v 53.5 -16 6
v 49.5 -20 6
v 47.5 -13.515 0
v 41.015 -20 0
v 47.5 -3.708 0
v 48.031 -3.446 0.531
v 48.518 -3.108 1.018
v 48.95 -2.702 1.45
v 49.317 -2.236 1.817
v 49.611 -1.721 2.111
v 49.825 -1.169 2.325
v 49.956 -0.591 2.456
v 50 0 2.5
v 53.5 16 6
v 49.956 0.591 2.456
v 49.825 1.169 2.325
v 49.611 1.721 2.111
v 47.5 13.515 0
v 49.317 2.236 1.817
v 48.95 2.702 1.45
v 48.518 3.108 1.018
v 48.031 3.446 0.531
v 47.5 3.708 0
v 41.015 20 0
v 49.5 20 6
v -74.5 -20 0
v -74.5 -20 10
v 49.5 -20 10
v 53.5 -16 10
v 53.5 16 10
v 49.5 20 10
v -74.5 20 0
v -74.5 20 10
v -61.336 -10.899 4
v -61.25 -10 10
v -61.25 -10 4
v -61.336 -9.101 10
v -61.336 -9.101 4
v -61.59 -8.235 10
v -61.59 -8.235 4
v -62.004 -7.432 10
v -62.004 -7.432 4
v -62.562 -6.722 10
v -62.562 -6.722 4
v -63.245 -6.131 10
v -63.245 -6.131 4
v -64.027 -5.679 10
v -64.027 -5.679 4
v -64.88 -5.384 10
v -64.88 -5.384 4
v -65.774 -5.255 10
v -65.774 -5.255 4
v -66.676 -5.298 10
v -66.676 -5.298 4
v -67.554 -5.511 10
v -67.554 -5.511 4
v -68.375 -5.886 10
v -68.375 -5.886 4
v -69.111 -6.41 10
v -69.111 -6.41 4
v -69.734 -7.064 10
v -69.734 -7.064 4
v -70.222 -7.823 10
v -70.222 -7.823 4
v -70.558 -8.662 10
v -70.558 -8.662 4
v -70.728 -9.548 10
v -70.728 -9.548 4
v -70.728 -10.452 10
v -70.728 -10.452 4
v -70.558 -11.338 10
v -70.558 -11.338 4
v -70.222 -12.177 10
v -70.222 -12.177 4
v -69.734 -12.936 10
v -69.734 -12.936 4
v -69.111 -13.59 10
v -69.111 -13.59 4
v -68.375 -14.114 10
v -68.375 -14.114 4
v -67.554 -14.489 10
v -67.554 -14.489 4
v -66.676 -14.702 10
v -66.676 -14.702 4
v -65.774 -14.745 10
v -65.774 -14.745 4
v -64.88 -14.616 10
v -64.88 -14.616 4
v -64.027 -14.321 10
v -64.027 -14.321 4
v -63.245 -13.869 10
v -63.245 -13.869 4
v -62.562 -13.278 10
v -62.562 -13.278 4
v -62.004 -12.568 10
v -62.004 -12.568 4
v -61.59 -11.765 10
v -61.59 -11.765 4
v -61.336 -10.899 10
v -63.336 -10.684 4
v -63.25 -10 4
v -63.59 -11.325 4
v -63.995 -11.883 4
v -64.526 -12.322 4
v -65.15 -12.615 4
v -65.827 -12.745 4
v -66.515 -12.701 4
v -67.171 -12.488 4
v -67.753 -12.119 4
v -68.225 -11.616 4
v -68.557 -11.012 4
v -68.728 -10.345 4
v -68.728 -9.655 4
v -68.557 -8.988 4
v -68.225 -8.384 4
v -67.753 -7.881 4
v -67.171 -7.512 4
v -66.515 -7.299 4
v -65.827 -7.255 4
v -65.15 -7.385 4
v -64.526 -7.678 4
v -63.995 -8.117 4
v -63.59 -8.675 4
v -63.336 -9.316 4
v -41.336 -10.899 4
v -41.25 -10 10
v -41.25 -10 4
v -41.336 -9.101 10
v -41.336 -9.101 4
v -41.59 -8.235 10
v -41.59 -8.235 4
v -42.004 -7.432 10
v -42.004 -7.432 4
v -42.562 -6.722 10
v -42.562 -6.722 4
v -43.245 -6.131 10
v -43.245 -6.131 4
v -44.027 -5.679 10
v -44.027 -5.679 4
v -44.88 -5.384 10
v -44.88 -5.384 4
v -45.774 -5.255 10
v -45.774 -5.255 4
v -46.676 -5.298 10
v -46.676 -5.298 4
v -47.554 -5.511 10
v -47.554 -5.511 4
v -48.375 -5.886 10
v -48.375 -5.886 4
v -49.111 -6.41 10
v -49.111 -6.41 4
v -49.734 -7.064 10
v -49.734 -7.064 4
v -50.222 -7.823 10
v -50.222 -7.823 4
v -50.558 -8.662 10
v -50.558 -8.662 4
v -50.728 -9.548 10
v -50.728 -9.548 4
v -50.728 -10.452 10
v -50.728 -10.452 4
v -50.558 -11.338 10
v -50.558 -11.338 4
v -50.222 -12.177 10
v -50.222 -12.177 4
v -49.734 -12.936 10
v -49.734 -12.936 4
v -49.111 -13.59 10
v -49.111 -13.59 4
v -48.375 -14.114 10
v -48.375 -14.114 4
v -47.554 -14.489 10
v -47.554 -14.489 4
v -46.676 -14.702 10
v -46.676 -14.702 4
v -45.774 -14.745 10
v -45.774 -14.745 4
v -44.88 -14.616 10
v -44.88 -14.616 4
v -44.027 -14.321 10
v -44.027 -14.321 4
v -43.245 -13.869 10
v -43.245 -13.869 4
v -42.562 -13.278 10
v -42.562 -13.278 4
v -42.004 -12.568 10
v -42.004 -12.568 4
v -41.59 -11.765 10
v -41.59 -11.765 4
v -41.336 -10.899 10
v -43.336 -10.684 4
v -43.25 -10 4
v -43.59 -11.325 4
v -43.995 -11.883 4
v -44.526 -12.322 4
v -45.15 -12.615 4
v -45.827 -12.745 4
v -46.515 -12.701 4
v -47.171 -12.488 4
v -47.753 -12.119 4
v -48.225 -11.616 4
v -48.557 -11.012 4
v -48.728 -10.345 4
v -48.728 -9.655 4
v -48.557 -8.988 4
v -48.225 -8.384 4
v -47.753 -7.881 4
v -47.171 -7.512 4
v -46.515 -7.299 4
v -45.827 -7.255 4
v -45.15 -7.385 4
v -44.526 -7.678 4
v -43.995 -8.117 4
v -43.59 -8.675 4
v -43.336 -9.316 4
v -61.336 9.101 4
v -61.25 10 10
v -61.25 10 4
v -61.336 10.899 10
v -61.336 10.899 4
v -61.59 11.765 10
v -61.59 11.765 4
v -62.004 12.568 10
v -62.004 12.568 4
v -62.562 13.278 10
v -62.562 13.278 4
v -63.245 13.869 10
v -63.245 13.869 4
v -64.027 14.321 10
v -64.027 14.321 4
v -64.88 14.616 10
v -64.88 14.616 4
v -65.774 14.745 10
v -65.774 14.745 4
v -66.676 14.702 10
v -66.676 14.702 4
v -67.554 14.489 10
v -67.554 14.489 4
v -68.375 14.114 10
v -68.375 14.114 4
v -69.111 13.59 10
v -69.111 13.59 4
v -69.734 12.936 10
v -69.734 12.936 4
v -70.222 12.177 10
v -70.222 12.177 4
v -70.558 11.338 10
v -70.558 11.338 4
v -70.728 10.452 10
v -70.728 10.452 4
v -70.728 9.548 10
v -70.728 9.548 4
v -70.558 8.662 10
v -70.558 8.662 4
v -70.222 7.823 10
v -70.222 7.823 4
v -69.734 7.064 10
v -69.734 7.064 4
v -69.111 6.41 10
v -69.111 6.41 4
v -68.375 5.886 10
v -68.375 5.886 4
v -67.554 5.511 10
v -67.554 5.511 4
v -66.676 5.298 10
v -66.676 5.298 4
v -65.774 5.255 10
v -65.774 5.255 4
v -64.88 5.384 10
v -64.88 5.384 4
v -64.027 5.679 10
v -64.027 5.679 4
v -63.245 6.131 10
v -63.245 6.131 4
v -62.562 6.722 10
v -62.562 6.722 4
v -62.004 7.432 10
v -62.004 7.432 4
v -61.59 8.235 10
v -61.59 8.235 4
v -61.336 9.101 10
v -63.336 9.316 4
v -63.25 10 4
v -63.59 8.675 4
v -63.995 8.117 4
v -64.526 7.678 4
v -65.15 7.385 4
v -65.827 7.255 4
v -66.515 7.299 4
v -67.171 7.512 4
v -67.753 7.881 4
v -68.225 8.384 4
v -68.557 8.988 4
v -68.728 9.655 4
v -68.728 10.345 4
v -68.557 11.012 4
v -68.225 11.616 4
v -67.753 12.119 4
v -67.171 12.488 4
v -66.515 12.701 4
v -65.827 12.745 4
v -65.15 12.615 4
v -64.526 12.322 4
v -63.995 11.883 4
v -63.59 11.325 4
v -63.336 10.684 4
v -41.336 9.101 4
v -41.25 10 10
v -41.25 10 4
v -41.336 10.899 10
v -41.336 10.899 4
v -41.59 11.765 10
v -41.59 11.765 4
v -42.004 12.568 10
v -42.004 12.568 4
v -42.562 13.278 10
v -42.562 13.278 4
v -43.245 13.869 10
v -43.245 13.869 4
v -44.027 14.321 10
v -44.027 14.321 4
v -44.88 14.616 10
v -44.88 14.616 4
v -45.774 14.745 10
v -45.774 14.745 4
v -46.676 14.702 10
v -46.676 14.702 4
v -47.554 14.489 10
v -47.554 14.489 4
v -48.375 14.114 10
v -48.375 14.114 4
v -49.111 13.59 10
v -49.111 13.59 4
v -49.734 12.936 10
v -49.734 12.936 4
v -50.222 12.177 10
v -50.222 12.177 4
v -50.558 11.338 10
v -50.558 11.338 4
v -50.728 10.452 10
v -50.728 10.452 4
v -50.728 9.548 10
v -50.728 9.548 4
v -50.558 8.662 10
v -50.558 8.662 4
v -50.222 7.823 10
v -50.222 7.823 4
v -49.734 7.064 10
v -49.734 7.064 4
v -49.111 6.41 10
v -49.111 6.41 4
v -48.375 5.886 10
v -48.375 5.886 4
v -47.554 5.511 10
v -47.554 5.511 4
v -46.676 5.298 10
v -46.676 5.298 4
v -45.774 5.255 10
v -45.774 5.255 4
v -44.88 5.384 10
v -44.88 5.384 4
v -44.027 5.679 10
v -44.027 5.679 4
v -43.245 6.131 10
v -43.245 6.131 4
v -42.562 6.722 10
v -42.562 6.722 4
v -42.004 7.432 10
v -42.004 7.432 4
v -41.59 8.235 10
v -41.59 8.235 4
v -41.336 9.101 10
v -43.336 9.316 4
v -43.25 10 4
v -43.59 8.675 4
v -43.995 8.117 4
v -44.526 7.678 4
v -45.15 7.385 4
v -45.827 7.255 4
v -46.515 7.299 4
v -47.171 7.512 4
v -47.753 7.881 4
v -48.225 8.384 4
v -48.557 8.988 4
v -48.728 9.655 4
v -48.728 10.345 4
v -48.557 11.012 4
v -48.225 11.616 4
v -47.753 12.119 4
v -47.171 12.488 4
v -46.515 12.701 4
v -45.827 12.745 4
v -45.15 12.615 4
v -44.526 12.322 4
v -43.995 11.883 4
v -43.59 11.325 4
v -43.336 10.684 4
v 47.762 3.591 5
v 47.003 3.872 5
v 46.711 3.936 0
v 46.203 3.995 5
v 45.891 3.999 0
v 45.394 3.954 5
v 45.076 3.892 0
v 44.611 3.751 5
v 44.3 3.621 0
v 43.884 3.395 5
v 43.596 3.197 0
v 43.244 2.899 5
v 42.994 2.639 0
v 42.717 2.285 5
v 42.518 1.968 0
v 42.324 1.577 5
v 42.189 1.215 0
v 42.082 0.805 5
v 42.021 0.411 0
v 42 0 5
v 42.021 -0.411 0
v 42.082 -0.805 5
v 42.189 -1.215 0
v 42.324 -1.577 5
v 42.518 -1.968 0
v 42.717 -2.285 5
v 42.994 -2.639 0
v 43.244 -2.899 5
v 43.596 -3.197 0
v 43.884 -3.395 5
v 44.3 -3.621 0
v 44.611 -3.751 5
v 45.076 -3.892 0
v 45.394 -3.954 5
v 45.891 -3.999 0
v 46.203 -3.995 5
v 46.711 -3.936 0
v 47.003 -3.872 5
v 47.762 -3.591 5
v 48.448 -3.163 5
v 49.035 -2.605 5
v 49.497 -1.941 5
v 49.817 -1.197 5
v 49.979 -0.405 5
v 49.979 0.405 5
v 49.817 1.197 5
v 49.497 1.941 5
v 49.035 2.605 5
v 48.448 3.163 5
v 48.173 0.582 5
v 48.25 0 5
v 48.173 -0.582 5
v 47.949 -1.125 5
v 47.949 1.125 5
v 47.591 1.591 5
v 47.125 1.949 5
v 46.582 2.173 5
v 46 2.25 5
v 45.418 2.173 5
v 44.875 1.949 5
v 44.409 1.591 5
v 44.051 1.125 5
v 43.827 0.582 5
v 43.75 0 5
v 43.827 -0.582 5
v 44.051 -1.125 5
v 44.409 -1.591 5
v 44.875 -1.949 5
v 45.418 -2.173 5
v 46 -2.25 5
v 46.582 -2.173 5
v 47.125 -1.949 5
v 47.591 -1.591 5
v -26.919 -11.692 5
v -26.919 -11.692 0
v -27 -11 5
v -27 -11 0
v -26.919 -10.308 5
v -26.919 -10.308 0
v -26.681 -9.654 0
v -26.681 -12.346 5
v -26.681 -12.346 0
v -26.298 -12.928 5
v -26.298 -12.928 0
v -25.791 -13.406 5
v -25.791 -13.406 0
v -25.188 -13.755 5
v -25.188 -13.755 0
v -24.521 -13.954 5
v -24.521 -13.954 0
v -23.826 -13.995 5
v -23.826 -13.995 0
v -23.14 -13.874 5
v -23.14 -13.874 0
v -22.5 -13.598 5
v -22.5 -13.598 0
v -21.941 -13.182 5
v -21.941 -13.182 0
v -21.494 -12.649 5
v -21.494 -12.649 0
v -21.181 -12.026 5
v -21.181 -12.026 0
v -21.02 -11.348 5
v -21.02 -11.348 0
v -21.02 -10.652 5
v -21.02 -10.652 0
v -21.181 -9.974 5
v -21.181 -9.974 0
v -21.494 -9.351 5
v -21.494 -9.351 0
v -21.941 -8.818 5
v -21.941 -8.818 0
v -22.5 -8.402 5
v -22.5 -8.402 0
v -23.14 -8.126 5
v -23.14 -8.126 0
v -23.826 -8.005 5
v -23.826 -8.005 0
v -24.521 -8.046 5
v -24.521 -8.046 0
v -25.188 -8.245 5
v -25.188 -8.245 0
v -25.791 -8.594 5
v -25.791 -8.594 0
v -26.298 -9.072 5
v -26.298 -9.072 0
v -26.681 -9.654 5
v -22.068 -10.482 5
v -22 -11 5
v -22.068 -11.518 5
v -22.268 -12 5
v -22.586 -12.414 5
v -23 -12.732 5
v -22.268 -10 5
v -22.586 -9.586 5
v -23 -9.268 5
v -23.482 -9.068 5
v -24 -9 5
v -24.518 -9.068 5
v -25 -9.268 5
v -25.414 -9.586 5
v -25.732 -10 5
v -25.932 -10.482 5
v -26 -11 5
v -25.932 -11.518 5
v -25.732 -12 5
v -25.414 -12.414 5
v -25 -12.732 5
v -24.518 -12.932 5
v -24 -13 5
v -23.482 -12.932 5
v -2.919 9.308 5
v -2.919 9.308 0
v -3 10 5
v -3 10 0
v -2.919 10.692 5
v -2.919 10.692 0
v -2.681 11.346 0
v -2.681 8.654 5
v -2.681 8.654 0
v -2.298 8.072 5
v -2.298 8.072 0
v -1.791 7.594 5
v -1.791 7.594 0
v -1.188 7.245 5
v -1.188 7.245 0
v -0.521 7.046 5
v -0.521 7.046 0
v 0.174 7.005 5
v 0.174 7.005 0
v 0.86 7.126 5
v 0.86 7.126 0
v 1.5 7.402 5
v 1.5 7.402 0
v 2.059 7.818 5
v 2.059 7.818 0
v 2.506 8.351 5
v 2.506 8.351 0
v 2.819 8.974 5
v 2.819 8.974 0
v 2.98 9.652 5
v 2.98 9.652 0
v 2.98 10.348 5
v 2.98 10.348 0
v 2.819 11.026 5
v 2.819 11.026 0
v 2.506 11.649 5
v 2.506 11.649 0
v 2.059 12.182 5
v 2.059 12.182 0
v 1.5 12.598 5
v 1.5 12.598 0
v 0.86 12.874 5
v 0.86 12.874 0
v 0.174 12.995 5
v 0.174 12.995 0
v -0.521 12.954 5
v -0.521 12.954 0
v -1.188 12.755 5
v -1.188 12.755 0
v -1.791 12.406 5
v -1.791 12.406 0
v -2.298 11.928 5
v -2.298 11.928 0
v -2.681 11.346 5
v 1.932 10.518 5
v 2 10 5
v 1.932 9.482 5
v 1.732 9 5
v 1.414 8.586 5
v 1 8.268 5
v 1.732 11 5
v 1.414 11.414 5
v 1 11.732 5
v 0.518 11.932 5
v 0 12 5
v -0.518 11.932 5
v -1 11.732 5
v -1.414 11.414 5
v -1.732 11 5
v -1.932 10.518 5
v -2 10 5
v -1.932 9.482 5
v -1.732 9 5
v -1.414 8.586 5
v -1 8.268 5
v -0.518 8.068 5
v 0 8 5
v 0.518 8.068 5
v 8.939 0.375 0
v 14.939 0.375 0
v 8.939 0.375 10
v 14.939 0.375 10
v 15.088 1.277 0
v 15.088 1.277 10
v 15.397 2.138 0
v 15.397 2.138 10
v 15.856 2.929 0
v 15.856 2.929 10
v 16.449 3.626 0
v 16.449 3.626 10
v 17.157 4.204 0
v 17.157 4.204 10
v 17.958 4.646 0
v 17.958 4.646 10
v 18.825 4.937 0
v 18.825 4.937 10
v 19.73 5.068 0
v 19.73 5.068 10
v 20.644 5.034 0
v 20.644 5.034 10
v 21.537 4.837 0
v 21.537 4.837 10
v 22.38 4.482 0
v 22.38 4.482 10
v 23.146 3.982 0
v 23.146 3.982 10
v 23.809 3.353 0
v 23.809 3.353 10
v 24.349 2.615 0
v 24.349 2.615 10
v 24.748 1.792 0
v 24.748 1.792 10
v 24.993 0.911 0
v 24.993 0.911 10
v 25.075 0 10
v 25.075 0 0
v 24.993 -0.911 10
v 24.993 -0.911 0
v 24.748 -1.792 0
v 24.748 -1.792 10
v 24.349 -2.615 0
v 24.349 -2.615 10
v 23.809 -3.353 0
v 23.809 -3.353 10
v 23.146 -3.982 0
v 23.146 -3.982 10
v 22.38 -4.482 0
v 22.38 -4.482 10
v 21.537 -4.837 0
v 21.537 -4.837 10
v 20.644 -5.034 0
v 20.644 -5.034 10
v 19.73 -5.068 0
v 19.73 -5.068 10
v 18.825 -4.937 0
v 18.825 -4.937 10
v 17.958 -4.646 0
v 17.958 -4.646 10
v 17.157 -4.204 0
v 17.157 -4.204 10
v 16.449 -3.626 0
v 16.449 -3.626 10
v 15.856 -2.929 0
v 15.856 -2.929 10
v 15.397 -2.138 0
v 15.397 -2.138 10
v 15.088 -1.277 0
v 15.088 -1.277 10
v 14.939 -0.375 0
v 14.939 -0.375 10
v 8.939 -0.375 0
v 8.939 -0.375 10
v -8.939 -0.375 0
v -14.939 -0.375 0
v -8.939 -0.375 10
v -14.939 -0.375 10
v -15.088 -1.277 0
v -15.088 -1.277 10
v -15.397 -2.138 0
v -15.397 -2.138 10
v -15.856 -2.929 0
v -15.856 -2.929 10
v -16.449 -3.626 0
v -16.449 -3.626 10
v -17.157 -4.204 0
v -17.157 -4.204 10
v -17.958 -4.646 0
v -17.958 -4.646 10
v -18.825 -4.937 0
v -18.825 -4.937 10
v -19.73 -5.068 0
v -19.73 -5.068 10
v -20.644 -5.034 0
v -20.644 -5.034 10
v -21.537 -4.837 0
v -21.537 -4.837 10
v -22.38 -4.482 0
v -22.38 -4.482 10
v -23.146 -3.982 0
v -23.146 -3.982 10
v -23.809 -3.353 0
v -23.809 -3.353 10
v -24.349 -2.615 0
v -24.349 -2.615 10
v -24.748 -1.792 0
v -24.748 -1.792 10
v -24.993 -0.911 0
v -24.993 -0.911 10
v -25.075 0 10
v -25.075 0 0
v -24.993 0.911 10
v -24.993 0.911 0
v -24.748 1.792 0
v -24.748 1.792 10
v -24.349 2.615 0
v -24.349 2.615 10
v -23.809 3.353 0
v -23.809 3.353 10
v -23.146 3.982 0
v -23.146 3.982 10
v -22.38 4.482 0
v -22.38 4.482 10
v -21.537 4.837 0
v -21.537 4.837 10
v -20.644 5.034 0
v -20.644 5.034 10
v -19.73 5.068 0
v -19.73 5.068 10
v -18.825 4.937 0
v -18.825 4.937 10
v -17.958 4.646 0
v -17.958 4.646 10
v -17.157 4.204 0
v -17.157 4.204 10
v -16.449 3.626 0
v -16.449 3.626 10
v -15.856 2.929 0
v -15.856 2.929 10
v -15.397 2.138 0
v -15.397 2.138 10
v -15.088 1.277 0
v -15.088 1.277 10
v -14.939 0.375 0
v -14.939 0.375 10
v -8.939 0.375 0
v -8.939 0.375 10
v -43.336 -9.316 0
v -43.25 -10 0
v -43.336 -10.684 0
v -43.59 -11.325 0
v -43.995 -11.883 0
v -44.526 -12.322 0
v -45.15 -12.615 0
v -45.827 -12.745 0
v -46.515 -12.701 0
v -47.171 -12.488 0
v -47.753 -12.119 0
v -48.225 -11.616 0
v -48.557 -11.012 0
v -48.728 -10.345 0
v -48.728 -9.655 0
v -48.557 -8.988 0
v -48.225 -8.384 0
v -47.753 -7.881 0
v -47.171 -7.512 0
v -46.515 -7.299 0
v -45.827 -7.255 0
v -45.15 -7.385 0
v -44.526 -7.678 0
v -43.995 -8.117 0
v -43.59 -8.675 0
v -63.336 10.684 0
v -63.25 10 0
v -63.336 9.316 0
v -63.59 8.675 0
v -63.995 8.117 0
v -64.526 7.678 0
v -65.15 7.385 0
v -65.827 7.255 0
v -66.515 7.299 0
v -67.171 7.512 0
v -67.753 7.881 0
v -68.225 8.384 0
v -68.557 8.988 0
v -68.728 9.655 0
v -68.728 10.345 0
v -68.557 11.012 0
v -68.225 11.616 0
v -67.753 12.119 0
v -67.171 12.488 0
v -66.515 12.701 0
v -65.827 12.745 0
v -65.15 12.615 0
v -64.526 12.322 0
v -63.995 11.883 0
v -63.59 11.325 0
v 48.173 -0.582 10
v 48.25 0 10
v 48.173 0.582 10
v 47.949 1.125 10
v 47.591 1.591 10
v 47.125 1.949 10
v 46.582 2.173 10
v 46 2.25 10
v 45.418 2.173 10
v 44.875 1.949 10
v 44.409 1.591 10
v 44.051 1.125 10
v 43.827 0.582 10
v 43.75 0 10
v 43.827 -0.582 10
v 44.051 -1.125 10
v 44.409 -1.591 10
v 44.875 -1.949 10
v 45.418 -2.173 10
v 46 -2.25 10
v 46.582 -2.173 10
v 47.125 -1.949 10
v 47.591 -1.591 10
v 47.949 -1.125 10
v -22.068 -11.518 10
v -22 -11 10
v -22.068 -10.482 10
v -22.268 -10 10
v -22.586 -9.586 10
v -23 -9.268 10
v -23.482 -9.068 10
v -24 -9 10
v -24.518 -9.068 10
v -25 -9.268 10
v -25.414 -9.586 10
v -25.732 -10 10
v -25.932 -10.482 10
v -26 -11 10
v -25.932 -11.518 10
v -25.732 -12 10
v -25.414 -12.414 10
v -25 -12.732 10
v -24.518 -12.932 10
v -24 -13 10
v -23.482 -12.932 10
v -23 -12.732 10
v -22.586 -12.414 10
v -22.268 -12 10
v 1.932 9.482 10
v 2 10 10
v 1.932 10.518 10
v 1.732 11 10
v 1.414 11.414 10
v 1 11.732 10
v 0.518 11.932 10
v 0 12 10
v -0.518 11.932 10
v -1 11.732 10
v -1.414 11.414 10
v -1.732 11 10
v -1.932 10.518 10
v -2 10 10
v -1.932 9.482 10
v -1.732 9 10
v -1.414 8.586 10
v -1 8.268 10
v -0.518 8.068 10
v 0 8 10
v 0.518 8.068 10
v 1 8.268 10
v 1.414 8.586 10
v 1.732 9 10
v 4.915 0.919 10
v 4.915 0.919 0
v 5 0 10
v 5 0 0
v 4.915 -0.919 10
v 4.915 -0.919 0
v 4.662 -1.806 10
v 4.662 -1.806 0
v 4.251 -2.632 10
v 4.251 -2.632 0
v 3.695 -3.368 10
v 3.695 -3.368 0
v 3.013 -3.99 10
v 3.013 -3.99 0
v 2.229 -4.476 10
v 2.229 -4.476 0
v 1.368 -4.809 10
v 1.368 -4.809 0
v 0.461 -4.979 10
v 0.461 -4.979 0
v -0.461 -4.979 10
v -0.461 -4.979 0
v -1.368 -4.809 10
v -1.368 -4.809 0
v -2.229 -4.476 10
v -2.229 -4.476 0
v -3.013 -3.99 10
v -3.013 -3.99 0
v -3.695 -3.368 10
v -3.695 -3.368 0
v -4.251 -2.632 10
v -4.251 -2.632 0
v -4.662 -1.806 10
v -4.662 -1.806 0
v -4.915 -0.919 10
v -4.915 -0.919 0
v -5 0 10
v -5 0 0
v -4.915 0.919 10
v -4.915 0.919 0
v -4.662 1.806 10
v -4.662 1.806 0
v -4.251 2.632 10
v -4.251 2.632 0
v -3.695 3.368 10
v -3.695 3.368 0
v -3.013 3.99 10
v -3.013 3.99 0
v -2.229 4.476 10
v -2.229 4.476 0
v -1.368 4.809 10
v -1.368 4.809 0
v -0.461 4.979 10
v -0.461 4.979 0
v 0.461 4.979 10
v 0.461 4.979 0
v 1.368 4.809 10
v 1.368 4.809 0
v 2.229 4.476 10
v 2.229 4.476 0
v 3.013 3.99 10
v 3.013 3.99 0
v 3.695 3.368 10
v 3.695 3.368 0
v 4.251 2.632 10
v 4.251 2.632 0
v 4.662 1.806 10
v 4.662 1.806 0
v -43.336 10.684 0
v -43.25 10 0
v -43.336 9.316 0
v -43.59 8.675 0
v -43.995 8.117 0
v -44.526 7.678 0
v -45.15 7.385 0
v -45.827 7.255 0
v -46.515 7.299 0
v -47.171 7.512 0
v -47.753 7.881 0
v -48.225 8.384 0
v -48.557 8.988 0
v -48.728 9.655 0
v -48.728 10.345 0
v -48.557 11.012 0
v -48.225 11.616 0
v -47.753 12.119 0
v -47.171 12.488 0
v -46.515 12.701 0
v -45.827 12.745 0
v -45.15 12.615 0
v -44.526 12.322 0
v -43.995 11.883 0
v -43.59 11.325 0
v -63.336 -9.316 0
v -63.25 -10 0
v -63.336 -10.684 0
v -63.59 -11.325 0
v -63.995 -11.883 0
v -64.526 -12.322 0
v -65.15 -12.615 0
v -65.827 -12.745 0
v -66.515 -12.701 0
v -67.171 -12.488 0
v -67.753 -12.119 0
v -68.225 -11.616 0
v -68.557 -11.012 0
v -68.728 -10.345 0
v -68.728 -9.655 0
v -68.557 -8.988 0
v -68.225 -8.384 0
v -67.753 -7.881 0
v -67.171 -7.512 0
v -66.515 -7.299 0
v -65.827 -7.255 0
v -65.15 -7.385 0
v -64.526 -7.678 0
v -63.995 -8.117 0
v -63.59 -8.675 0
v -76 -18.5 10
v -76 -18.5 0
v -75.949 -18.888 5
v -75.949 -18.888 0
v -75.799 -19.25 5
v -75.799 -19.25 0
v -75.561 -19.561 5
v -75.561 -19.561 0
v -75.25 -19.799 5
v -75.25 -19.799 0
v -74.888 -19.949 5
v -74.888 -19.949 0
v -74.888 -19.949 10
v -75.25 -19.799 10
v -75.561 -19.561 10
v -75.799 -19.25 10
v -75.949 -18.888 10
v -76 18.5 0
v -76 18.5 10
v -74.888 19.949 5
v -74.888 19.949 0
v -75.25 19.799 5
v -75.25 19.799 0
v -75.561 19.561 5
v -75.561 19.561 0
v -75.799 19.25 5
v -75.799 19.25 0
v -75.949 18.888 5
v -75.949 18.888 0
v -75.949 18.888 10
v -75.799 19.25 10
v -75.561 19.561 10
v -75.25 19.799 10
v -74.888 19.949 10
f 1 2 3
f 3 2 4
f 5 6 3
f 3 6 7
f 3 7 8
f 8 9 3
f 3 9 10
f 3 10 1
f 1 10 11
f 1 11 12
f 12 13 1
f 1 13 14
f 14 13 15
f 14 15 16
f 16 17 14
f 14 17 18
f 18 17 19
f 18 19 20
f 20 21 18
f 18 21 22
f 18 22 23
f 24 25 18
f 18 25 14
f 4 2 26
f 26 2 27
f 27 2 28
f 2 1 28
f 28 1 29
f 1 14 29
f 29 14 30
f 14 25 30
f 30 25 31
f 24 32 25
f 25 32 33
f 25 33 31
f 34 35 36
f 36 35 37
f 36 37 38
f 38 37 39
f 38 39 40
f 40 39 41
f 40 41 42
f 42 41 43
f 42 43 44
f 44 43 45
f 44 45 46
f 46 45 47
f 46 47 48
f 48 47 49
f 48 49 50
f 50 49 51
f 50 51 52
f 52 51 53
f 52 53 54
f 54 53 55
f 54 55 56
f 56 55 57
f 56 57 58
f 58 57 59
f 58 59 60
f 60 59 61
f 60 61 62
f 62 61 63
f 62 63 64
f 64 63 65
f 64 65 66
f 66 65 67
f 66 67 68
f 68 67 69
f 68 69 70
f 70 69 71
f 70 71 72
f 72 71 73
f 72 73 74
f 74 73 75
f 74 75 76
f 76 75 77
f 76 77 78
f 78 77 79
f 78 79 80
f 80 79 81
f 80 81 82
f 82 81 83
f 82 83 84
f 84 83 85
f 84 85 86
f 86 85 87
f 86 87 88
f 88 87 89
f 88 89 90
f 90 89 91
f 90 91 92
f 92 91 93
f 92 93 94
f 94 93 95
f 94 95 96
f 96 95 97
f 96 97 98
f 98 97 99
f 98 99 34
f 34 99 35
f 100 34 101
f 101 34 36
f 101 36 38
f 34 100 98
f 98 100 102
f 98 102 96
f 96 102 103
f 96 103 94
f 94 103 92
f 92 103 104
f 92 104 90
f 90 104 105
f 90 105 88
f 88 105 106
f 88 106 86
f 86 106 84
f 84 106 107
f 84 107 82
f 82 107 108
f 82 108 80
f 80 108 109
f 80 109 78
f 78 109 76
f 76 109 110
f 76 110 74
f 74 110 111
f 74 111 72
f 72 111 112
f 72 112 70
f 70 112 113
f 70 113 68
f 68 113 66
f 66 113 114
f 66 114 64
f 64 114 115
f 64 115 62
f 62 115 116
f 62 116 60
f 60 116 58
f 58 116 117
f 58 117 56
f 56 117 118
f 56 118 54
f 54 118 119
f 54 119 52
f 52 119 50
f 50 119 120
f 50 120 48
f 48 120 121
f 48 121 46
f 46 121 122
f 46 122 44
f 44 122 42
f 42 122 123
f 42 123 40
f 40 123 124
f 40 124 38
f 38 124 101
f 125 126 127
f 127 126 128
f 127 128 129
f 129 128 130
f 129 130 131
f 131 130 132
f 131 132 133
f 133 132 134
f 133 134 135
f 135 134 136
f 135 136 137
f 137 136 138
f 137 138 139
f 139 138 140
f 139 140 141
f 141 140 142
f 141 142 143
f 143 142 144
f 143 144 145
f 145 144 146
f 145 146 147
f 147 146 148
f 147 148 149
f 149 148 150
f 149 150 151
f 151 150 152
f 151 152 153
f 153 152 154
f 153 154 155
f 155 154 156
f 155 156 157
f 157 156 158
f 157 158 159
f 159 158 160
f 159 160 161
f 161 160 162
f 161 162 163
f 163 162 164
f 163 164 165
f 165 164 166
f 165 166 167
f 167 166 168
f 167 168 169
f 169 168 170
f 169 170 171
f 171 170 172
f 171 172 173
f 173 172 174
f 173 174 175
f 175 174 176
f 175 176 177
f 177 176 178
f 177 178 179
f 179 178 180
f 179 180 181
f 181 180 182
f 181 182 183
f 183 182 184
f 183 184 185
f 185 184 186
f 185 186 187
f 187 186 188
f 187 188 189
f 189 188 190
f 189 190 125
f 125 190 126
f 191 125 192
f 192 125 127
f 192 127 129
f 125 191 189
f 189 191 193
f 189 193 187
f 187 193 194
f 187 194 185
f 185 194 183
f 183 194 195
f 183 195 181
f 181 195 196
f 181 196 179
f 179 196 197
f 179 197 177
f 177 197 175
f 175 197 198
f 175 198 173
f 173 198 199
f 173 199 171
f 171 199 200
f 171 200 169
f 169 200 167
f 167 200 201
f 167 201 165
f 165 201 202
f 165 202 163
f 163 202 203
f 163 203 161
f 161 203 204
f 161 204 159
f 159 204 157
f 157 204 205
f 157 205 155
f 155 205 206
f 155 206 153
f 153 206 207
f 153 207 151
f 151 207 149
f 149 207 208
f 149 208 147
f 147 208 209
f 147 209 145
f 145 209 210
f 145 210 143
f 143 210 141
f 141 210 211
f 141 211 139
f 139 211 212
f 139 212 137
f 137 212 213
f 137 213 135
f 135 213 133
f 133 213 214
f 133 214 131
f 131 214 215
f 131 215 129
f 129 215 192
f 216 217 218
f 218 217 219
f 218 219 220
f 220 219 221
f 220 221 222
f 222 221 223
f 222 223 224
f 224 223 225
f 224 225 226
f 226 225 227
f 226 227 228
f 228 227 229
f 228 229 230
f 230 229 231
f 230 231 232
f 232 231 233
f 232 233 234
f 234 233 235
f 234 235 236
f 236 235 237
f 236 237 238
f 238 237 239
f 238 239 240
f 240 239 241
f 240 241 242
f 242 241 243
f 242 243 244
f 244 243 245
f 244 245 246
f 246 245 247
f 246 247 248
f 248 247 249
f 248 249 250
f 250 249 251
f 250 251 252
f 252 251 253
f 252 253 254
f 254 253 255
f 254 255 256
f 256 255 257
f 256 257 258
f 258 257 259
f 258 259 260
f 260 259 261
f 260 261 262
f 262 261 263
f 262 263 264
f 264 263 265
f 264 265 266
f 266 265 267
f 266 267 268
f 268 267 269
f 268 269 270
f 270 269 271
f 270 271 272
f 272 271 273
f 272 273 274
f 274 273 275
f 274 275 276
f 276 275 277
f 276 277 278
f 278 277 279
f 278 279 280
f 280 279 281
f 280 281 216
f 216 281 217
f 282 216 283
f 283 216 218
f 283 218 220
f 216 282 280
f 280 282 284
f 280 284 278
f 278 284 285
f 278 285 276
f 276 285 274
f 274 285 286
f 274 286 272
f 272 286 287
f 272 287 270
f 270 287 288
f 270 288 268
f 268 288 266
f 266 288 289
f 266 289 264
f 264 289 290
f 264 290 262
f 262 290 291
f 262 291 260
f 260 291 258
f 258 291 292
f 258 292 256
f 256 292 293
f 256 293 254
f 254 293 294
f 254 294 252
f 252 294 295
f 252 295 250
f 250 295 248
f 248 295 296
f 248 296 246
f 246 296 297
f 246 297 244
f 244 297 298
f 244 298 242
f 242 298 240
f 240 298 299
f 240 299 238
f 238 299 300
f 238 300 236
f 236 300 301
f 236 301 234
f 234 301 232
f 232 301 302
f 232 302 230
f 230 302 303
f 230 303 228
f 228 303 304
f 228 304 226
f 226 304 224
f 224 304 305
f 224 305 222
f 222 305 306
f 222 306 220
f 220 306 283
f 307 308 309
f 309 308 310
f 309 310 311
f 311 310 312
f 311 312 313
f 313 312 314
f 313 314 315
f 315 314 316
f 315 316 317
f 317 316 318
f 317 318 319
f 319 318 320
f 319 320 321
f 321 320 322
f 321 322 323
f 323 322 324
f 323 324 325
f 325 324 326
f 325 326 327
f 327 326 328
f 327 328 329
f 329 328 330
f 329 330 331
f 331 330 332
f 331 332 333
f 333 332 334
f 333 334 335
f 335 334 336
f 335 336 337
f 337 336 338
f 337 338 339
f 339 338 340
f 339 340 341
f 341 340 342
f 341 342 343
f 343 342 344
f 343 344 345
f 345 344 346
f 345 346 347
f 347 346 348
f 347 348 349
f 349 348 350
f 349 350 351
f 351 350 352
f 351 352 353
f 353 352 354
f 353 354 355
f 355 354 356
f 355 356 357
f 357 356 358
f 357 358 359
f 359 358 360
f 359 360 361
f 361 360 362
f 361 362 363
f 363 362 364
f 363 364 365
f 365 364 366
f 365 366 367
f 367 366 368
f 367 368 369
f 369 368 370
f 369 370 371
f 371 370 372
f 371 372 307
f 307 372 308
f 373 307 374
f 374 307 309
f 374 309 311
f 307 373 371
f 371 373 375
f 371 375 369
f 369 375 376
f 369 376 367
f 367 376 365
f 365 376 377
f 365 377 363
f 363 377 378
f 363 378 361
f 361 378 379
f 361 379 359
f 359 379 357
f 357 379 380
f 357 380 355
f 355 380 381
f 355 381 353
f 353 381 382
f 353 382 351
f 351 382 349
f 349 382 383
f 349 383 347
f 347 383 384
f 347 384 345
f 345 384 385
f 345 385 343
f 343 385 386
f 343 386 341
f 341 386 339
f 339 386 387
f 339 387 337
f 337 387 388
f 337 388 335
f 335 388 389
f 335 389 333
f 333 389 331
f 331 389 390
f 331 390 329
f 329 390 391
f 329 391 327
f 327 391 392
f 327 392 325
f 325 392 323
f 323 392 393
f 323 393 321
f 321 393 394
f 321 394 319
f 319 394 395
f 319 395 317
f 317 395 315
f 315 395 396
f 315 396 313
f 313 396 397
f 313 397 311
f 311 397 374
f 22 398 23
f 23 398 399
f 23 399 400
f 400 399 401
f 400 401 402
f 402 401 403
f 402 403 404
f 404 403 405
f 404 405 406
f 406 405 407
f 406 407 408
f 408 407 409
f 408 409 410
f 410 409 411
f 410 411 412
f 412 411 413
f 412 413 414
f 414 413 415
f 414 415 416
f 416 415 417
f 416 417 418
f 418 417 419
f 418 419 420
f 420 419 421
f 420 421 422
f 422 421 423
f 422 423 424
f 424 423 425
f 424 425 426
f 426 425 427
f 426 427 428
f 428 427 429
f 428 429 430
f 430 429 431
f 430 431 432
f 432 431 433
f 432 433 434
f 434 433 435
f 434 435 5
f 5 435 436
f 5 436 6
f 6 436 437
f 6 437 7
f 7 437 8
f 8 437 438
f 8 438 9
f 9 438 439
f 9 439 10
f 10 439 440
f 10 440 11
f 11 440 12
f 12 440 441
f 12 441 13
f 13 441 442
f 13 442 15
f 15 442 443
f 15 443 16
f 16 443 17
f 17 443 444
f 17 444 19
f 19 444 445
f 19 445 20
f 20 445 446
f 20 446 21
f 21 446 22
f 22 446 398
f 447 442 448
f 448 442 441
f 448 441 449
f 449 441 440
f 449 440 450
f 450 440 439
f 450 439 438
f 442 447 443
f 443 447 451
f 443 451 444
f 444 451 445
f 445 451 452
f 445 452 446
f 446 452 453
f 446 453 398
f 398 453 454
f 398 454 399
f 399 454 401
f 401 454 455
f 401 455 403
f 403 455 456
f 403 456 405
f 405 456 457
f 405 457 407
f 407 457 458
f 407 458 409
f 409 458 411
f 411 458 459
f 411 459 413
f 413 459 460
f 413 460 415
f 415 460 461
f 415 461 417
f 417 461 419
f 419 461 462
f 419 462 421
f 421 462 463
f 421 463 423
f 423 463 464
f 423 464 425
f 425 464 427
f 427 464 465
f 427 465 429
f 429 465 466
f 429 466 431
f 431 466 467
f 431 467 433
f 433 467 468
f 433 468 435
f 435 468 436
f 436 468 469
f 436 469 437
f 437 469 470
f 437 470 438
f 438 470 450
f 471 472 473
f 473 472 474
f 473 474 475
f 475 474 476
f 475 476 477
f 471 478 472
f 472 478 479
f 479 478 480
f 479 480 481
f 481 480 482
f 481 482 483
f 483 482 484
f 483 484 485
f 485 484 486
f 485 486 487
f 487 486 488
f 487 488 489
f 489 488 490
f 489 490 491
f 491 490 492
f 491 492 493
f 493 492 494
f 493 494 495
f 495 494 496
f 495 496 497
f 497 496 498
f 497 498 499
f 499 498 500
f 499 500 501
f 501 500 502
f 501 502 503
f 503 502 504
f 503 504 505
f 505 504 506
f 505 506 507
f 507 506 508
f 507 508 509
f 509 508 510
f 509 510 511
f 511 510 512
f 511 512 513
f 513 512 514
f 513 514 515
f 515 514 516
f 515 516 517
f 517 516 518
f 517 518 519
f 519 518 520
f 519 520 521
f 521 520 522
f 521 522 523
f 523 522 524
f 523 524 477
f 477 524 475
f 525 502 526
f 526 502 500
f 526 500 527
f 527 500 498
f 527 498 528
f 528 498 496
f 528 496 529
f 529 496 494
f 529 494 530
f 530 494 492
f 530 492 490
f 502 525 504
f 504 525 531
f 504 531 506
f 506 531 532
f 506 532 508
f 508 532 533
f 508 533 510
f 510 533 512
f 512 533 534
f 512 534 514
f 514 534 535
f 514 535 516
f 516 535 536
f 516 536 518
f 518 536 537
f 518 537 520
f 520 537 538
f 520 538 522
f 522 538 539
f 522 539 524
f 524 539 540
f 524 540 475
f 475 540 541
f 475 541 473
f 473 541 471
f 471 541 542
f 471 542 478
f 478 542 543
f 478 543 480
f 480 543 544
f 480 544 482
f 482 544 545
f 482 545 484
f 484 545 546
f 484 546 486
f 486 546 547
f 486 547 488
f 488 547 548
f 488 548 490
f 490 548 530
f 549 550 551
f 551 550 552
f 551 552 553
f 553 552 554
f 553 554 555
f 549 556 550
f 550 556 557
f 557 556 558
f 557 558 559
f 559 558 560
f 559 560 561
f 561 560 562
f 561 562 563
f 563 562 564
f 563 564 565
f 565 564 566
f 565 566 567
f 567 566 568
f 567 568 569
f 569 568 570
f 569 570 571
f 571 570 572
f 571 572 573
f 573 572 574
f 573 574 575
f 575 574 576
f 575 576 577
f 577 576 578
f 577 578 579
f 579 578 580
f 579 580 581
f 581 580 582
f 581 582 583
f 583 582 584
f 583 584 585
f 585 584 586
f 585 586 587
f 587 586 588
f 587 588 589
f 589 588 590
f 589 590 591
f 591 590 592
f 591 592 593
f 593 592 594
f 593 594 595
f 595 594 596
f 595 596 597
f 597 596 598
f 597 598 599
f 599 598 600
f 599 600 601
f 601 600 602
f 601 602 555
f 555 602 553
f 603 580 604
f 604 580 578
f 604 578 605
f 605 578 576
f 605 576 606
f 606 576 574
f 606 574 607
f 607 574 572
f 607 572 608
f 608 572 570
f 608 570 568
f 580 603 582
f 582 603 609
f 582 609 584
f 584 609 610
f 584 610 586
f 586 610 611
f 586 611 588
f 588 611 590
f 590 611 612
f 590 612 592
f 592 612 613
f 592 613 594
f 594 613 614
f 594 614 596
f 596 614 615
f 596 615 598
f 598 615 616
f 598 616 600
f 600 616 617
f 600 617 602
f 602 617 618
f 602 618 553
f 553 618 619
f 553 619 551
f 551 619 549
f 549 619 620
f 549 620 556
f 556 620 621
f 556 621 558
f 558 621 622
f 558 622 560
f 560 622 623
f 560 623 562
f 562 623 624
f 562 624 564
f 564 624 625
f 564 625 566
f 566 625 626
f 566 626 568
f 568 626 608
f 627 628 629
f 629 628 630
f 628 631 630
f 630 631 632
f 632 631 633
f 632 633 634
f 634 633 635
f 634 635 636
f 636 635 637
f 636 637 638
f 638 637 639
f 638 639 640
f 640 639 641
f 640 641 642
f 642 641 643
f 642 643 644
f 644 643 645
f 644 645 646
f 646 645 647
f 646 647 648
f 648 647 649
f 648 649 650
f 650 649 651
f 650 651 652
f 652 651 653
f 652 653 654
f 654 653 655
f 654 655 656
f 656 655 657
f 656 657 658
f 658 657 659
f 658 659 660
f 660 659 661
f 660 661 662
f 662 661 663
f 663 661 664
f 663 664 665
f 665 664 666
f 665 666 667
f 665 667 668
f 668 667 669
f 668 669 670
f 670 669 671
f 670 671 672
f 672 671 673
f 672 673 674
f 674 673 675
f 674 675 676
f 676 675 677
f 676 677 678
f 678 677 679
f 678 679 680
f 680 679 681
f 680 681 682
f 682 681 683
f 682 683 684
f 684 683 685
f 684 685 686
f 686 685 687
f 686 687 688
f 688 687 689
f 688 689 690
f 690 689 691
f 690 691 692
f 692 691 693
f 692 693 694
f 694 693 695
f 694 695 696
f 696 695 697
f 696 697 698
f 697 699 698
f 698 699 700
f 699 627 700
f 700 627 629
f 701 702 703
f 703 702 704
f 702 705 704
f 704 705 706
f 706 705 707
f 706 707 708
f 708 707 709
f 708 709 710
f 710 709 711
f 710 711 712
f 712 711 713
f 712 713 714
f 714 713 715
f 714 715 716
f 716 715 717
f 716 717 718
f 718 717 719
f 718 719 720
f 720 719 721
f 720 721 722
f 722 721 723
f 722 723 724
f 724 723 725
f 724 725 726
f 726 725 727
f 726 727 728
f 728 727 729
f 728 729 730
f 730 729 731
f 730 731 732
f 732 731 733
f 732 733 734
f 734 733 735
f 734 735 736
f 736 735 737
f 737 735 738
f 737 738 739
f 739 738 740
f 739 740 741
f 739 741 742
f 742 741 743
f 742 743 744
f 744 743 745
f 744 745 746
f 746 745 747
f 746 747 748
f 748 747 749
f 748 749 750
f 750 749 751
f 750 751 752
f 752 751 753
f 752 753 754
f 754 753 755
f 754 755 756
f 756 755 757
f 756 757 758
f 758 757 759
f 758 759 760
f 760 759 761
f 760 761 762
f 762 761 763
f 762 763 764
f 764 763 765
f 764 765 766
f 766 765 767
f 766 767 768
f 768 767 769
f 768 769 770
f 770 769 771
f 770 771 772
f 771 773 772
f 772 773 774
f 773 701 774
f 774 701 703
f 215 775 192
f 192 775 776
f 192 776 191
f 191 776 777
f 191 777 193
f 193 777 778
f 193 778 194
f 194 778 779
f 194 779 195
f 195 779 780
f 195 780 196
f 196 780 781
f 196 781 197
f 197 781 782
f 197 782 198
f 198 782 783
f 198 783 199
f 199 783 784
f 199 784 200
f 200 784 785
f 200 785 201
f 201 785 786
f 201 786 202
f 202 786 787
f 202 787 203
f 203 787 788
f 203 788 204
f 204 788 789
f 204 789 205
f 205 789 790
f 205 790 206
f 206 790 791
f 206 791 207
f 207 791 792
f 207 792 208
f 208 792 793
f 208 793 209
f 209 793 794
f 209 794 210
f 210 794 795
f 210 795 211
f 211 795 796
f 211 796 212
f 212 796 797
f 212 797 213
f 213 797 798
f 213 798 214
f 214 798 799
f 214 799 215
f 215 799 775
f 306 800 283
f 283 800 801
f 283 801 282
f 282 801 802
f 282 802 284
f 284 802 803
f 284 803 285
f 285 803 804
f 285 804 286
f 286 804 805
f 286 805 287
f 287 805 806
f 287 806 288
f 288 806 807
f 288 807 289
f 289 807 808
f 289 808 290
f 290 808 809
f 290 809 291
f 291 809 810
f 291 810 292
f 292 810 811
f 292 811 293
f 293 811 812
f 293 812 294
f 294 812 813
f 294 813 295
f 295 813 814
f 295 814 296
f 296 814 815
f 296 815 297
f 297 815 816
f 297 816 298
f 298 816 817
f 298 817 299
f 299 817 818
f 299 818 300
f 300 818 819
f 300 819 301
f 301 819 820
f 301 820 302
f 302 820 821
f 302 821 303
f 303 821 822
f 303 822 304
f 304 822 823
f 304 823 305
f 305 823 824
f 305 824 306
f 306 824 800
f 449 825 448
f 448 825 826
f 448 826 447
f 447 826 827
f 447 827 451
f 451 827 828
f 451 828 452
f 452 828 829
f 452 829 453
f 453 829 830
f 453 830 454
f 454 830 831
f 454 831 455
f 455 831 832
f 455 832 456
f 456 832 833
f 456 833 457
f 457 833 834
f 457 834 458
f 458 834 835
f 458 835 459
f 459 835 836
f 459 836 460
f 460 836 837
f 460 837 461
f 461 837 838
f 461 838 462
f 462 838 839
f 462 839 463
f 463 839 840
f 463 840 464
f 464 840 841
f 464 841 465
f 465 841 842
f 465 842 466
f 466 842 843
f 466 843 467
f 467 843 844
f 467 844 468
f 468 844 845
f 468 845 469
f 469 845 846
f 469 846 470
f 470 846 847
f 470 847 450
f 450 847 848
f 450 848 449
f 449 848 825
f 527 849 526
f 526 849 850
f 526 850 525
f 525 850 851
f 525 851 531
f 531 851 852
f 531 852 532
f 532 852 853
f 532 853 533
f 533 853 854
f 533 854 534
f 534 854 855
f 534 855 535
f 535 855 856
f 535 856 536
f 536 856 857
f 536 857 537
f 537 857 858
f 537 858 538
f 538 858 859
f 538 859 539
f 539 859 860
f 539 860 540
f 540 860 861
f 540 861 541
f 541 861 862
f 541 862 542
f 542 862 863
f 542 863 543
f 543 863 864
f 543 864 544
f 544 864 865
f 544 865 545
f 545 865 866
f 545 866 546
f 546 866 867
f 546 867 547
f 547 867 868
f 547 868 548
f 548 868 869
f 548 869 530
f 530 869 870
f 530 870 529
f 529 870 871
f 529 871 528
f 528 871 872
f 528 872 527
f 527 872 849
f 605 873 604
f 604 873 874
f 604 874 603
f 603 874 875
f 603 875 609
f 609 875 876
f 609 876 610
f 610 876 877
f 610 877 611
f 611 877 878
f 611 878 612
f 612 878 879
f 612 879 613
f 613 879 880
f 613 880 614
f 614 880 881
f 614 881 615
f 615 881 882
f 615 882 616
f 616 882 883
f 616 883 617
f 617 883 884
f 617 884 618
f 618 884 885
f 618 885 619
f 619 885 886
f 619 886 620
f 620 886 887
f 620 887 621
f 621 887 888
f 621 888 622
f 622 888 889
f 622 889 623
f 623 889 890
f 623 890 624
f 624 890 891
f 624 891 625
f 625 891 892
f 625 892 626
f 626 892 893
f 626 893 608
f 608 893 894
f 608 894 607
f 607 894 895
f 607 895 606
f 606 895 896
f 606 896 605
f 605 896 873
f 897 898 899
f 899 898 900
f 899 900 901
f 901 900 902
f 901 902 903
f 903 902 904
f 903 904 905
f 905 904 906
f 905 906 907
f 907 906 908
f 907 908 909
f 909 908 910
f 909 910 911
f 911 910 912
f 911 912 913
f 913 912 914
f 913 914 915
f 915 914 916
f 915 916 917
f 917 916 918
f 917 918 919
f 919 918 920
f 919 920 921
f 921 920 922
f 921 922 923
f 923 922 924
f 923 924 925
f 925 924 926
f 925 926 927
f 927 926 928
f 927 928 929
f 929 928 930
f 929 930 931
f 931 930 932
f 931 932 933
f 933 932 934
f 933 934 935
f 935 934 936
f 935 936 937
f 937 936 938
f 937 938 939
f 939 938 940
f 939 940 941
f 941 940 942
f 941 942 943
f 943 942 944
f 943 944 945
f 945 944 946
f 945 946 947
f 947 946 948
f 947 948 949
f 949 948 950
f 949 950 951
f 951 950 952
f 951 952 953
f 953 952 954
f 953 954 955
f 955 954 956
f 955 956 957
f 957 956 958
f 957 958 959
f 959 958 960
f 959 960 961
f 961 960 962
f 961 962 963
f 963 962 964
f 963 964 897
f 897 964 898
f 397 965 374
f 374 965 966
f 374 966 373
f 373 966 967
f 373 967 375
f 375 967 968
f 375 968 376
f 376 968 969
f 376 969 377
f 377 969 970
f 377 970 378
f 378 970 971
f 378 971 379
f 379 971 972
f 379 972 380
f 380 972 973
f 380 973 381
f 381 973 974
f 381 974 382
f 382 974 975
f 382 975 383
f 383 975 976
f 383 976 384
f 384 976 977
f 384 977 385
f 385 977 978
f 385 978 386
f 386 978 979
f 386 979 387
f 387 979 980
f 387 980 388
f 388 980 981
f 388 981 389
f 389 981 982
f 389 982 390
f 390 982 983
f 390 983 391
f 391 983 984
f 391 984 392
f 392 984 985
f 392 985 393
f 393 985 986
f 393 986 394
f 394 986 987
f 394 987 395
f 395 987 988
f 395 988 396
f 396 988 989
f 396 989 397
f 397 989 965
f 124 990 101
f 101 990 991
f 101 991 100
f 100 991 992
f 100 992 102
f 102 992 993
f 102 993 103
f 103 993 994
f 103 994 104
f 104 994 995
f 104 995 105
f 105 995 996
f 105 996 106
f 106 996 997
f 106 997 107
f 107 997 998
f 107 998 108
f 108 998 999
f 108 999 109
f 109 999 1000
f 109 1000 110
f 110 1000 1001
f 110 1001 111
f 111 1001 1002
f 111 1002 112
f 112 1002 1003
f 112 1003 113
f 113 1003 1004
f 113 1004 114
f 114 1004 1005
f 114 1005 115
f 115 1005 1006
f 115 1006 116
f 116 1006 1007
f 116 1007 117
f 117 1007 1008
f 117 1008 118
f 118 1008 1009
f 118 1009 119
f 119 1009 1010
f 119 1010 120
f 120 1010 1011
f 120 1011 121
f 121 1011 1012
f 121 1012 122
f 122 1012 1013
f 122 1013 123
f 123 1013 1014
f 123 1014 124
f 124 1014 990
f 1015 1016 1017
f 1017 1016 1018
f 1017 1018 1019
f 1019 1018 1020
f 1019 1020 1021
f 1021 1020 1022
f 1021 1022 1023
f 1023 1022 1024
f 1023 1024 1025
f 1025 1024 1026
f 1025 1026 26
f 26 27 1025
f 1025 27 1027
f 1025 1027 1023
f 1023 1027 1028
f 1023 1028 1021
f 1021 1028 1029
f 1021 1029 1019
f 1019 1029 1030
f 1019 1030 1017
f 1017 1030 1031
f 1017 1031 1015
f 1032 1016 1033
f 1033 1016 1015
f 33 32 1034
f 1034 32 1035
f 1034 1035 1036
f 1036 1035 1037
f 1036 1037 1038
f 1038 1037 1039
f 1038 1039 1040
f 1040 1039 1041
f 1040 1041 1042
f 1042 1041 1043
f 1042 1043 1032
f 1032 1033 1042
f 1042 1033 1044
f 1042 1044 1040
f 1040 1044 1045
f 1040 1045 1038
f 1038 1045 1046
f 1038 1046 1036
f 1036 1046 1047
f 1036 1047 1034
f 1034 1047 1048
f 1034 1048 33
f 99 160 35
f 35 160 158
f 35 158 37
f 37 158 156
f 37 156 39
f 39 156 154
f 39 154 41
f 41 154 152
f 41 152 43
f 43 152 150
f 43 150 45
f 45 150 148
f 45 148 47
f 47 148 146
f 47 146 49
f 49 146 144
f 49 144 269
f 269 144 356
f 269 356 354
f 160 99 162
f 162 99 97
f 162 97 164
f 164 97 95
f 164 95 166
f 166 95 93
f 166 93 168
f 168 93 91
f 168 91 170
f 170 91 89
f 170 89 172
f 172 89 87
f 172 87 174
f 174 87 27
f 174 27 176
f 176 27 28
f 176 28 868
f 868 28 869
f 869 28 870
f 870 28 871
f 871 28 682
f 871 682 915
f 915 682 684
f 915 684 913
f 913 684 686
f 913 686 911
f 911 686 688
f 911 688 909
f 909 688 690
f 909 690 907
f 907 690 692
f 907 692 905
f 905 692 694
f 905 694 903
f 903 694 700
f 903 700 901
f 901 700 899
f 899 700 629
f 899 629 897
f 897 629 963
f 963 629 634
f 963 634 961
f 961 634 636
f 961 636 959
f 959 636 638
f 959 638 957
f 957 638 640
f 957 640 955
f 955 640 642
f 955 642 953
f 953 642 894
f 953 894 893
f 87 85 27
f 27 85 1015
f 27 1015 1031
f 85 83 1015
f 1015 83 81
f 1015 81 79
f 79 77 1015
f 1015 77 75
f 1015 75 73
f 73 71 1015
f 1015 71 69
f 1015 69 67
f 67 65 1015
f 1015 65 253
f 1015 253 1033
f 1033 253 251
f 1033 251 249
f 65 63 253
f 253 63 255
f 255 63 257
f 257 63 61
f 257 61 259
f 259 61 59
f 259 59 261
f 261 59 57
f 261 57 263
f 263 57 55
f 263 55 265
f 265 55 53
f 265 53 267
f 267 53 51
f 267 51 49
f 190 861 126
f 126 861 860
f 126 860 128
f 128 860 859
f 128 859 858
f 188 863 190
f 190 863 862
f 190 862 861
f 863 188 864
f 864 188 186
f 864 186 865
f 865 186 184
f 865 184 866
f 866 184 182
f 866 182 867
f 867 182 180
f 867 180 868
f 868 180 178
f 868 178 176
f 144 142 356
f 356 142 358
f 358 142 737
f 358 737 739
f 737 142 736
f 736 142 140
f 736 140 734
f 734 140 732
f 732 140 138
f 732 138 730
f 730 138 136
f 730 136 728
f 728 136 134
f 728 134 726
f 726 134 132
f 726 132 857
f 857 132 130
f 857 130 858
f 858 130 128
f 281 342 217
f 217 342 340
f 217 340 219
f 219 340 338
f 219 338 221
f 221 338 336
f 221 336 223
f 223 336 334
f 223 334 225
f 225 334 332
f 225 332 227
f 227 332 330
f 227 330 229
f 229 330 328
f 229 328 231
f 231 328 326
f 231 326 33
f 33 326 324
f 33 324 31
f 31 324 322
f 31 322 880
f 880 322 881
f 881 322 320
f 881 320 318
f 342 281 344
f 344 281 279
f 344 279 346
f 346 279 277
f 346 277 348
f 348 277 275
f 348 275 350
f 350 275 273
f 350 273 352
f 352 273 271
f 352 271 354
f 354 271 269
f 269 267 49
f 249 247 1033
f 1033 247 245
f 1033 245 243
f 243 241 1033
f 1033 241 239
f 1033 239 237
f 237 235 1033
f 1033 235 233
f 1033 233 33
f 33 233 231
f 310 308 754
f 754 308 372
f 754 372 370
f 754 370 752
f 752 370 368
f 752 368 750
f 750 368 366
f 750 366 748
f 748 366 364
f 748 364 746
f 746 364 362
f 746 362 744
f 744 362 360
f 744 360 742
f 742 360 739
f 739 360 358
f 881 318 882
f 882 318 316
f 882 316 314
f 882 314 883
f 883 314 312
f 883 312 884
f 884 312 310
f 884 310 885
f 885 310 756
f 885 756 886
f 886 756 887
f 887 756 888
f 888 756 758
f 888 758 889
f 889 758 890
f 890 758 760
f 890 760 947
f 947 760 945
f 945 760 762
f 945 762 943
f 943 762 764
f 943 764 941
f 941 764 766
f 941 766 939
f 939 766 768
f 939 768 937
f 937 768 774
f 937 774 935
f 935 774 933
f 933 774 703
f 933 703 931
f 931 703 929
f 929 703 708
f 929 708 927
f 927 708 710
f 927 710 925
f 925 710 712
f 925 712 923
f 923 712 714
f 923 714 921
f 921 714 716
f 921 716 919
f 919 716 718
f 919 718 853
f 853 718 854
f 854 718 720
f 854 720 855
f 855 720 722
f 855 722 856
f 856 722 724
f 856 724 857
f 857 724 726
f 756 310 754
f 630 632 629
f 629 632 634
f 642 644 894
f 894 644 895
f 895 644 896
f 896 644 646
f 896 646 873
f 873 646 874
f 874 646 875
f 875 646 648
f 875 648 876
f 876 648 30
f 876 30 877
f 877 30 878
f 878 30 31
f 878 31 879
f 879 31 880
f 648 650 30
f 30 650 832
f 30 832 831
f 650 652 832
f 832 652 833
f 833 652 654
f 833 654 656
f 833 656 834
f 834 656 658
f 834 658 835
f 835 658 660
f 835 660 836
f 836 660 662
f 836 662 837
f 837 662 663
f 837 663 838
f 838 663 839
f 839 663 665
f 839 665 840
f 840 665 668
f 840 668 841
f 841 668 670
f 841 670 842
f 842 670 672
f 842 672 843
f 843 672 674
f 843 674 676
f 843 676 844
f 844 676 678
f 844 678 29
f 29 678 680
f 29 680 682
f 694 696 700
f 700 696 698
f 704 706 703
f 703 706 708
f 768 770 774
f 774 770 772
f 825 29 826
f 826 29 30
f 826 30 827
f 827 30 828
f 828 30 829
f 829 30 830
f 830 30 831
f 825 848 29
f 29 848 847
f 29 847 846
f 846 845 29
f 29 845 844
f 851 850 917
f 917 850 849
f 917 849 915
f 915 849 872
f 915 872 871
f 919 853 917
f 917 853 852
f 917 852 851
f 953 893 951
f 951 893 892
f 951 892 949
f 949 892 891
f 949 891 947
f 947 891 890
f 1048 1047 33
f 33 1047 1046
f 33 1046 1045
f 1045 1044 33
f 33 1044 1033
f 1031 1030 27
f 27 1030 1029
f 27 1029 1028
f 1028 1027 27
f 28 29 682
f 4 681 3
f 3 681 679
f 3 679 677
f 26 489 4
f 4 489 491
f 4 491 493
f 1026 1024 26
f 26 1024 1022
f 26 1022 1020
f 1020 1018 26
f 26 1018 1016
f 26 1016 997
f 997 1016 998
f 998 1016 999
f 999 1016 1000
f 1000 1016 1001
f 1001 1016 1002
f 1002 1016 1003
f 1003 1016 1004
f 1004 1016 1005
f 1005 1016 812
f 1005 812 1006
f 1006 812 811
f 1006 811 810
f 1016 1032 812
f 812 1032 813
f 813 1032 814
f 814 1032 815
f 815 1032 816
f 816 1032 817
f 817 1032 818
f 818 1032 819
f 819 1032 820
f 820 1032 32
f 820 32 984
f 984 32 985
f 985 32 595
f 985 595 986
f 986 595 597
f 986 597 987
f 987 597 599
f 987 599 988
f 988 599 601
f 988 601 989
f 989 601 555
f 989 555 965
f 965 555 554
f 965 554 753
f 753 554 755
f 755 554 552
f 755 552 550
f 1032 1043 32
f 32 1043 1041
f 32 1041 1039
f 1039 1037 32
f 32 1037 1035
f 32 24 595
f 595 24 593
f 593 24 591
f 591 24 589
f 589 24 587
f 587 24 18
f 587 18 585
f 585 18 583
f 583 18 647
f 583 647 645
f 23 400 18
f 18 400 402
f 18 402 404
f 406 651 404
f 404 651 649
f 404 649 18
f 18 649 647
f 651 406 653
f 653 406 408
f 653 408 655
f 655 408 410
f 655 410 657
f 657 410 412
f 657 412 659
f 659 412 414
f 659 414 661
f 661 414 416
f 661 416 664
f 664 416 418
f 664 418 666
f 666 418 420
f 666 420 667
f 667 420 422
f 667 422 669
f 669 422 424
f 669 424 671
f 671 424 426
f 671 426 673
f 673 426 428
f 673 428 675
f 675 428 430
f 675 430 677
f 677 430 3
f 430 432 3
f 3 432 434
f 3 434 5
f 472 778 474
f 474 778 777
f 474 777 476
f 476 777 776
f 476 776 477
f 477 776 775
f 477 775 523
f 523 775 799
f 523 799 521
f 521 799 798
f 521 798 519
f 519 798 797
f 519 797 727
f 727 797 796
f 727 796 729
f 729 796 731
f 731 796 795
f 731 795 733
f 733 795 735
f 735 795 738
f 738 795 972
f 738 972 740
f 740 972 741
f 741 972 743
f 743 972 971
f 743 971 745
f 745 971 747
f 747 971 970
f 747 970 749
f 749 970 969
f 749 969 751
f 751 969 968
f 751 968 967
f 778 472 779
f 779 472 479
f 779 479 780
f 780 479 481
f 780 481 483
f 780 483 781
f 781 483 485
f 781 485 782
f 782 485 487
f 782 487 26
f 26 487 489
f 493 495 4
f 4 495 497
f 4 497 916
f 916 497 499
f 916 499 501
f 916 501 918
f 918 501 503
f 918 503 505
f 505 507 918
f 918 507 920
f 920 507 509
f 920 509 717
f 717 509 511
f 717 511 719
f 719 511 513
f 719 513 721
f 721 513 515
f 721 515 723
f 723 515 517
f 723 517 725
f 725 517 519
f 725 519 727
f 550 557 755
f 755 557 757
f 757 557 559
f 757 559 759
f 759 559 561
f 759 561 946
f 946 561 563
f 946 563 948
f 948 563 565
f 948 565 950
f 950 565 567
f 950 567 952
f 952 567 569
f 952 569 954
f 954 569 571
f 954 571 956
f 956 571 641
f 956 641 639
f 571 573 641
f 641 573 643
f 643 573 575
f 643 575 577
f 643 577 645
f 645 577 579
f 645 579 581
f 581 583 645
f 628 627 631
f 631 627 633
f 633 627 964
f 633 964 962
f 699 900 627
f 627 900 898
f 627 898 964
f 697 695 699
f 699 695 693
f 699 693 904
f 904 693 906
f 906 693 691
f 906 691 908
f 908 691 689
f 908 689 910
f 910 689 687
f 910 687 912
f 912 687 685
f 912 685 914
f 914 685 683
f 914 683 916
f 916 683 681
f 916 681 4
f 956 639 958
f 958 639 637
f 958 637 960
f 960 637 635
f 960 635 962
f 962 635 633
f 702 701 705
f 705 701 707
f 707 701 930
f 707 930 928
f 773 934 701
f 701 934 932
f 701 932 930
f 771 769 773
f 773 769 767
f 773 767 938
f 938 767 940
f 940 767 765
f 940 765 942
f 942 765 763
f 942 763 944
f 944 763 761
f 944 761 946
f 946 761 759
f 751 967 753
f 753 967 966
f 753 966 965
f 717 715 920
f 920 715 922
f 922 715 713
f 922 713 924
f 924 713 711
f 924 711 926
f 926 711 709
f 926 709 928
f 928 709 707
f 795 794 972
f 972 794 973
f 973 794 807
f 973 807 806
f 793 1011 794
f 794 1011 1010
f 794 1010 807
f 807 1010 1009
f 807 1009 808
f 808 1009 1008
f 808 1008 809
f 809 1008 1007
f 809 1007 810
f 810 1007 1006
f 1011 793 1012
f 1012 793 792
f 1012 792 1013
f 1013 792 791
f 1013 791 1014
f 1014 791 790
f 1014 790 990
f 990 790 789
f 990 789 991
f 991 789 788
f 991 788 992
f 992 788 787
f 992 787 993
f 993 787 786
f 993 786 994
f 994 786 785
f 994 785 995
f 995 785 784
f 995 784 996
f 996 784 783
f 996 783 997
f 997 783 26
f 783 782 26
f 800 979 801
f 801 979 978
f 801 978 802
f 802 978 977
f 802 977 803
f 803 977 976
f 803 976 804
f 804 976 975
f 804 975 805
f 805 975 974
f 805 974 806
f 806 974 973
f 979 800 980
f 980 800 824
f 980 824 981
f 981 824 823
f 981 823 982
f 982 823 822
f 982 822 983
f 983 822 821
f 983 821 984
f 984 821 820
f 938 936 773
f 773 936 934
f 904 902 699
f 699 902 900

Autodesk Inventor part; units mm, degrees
ref_plane "YZ Plane" through (0, 0, 0) normal (1, 0, 0) x (0, 1, 0)
ref_plane "XZ Plane" through (0, 0, 0) normal (0, 1, 0) x (-1, 0, 0)
ref_plane "XY Plane" through (0, 0, 0) normal (0, 0, 1) x (1, 0, 0)
sketch "Sketch1" plane through (0, 0, 0) normal (0, 0, 1) x (1, 0, 0)
  line L0 (49.5, 20) -> (-74.5, 20)
  line L1 (-76, 18.5) -> (-76, -18.5)
  line L2 (-74.5, -20) -> (49.5, -20)
  line L3 (-102.2728, 0) -> (79.4621, 0) construction
  line L4 (0, 28.4349) -> (0, -28.4349) construction
  circle A0 centre (0, 0) radius 5
  circle A1 centre (20, 0) radius 5.075
  line L5 (14.9389, 0.375) -> (8.9389, 0.375)
  line L6 (8.9389, 0.375) -> (8.9389, 0)
  line L7 (14.9389, -0.375) -> (8.9389, -0.375)
  line L8 (8.9389, -0.375) -> (8.9389, 0)
  circle A2 centre (-20, 0) radius 5.075
  line L9 (-14.9389, 0.375) -> (-8.9389, 0.375)
  line L10 (-8.9389, 0.375) -> (-8.9389, 0)
  line L11 (-14.9389, -0.375) -> (-8.9389, -0.375)
  line L12 (-8.9389, -0.375) -> (-8.9389, 0)
  circle A3 centre (0, 10) radius 2
  line L13 (36, 20) -> (36, -20) construction
  circle A4 centre (-24, -11) radius 2
  circle A5 centre (46, 0) radius 2.25
  line L14 (-46, -10) -> (-66, -10) construction
  line L15 (-66, -10) -> (-66, 10) construction
  line L16 (-66, 10) -> (-46, 10) construction
  line L17 (-46, 10) -> (-46, -10) construction
  line L18 (-46, -10) -> (-66, 10) construction
  line L19 (-66, -10) -> (-46, 10) construction
  circle A6 centre (-66, 10) radius 2.75
  circle A7 centre (-46, 10) radius 2.75
  circle A8 centre (-46, -10) radius 2.75
  circle A9 centre (-66, -10) radius 2.75
  line L20 (0, 15) -> (-45, 15) construction
  line L21 (-45, 15) -> (-45, 0) construction
  line L22 (-45, 0) -> (-30, -15) construction
  line L23 (-30, -15) -> (0, -15) construction
  line L24 (-36, -20) -> (-76, -20) construction
  line L25 (-76, -20) -> (-76, 20) construction
  line L26 (-76, 20) -> (-36, 20) construction
  line L27 (-36, 20) -> (-36, -20) construction
  line L28 (-36, -20) -> (-76, 20) construction
  line L29 (-76, -20) -> (-36, 20) construction
  arc A10 (-76, -18.5) -> (-74.5, -20) centre (-74.5, -18.5) ccw
  arc A11 (-74.5, 20) -> (-76, 18.5) centre (-74.5, 18.5) ccw
  line L30 (53.5, -16) -> (53.5, 16)
  line L31 (53.5, -16) -> (49.5, -20)
  line L32 (49.5, 20) -> (53.5, 16)
  point P0 (0, 0)
  point P1 (-56, 0)
  point P2 (53.5, -20)
  point P3 (53.5, 20)
  point P4 (-14.9389, -0.375)
  point P5 (14.9389, -0.375)
  dimension "d99" = 10.15
  dimension "d44" = 10
  dimension "d46" = 0.75
  dimension "d47" = 6
  dimension "d48" = 40
  dimension "d49" = 4
  dimension "d50" = 10
  dimension "d51" = 16
  dimension "d55" = 11
  dimension "d56" = 4
  dimension "d60" = 10
  dimension "d62" = 20
  dimension "d63" = 10
  dimension "d64" = 5.5
  dimension "d65" = 45
  dimension "d66" = 30
  dimension "d67" = 45
  dimension "d68" = 40
  dimension "d69" = 40
  dimension "d70" = 1.5
  dimension "d73" = 16
  dimension "d86" = 17.5
  dimension "d87" = 40
  dimension "d89" = 4.5
  dimension "d90" = 4
  dimension "d91" = 4
  dimension "d92" = 4
  dimension "d93" = 4
extrude "Vysunutí1" add sketch "Sketch1" along normal blind 10
sketch "Sketch2" plane through (0, 0, 0) normal (0, 0, -1) x (-1, 0, 0)
  circle A0 centre (-46, 0) radius 2.25 construction
  circle A1 centre (-46, 0) radius 2.25 projected
  circle A2 centre (-46, 0) radius 4
  circle A3 centre (0, 10) radius 2 construction
  circle A4 centre (24, -11) radius 2 construction
  circle A5 centre (0, 10) radius 3
  circle A6 centre (24, -11) radius 3
  point P0 (0, 0)
  point P1 (-66, 0)
  dimension "d85" = 6
extrude "Extrusion2" cut sketch "Sketch2" against normal blind 5 contours A1 | A2 | A5 | A6
sketch "Sketch3" plane through (0, 0, 10) normal (0, 0, 1) x (1, 0, 0)
  circle A0 centre (-46, -10) radius 2.75 construction
  circle A1 centre (-66, -10) radius 2.75 construction
  circle A2 centre (-66, 10) radius 2.75 construction
  circle A3 centre (-46, 10) radius 2.75 construction
  circle A4 centre (-46, -10) radius 2.75 construction
  circle A5 centre (-46, -10) radius 4.75
  circle A6 centre (-66, -10) radius 4.75
  circle A7 centre (-66, 10) radius 4.75
  circle A8 centre (-46, 10) radius 4.75
  point P0 (0, 0)
  dimension "d82" = 9.5
extrude "Extrusion3" cut sketch "Sketch3" against normal blind 6
chamfer "Chamfer1" distance 6 angle 45 3 edges at (53.5, 0, 0) (51.5, -18, 0) (51.5, 18, 0)
properties part number "_3DPrint"
